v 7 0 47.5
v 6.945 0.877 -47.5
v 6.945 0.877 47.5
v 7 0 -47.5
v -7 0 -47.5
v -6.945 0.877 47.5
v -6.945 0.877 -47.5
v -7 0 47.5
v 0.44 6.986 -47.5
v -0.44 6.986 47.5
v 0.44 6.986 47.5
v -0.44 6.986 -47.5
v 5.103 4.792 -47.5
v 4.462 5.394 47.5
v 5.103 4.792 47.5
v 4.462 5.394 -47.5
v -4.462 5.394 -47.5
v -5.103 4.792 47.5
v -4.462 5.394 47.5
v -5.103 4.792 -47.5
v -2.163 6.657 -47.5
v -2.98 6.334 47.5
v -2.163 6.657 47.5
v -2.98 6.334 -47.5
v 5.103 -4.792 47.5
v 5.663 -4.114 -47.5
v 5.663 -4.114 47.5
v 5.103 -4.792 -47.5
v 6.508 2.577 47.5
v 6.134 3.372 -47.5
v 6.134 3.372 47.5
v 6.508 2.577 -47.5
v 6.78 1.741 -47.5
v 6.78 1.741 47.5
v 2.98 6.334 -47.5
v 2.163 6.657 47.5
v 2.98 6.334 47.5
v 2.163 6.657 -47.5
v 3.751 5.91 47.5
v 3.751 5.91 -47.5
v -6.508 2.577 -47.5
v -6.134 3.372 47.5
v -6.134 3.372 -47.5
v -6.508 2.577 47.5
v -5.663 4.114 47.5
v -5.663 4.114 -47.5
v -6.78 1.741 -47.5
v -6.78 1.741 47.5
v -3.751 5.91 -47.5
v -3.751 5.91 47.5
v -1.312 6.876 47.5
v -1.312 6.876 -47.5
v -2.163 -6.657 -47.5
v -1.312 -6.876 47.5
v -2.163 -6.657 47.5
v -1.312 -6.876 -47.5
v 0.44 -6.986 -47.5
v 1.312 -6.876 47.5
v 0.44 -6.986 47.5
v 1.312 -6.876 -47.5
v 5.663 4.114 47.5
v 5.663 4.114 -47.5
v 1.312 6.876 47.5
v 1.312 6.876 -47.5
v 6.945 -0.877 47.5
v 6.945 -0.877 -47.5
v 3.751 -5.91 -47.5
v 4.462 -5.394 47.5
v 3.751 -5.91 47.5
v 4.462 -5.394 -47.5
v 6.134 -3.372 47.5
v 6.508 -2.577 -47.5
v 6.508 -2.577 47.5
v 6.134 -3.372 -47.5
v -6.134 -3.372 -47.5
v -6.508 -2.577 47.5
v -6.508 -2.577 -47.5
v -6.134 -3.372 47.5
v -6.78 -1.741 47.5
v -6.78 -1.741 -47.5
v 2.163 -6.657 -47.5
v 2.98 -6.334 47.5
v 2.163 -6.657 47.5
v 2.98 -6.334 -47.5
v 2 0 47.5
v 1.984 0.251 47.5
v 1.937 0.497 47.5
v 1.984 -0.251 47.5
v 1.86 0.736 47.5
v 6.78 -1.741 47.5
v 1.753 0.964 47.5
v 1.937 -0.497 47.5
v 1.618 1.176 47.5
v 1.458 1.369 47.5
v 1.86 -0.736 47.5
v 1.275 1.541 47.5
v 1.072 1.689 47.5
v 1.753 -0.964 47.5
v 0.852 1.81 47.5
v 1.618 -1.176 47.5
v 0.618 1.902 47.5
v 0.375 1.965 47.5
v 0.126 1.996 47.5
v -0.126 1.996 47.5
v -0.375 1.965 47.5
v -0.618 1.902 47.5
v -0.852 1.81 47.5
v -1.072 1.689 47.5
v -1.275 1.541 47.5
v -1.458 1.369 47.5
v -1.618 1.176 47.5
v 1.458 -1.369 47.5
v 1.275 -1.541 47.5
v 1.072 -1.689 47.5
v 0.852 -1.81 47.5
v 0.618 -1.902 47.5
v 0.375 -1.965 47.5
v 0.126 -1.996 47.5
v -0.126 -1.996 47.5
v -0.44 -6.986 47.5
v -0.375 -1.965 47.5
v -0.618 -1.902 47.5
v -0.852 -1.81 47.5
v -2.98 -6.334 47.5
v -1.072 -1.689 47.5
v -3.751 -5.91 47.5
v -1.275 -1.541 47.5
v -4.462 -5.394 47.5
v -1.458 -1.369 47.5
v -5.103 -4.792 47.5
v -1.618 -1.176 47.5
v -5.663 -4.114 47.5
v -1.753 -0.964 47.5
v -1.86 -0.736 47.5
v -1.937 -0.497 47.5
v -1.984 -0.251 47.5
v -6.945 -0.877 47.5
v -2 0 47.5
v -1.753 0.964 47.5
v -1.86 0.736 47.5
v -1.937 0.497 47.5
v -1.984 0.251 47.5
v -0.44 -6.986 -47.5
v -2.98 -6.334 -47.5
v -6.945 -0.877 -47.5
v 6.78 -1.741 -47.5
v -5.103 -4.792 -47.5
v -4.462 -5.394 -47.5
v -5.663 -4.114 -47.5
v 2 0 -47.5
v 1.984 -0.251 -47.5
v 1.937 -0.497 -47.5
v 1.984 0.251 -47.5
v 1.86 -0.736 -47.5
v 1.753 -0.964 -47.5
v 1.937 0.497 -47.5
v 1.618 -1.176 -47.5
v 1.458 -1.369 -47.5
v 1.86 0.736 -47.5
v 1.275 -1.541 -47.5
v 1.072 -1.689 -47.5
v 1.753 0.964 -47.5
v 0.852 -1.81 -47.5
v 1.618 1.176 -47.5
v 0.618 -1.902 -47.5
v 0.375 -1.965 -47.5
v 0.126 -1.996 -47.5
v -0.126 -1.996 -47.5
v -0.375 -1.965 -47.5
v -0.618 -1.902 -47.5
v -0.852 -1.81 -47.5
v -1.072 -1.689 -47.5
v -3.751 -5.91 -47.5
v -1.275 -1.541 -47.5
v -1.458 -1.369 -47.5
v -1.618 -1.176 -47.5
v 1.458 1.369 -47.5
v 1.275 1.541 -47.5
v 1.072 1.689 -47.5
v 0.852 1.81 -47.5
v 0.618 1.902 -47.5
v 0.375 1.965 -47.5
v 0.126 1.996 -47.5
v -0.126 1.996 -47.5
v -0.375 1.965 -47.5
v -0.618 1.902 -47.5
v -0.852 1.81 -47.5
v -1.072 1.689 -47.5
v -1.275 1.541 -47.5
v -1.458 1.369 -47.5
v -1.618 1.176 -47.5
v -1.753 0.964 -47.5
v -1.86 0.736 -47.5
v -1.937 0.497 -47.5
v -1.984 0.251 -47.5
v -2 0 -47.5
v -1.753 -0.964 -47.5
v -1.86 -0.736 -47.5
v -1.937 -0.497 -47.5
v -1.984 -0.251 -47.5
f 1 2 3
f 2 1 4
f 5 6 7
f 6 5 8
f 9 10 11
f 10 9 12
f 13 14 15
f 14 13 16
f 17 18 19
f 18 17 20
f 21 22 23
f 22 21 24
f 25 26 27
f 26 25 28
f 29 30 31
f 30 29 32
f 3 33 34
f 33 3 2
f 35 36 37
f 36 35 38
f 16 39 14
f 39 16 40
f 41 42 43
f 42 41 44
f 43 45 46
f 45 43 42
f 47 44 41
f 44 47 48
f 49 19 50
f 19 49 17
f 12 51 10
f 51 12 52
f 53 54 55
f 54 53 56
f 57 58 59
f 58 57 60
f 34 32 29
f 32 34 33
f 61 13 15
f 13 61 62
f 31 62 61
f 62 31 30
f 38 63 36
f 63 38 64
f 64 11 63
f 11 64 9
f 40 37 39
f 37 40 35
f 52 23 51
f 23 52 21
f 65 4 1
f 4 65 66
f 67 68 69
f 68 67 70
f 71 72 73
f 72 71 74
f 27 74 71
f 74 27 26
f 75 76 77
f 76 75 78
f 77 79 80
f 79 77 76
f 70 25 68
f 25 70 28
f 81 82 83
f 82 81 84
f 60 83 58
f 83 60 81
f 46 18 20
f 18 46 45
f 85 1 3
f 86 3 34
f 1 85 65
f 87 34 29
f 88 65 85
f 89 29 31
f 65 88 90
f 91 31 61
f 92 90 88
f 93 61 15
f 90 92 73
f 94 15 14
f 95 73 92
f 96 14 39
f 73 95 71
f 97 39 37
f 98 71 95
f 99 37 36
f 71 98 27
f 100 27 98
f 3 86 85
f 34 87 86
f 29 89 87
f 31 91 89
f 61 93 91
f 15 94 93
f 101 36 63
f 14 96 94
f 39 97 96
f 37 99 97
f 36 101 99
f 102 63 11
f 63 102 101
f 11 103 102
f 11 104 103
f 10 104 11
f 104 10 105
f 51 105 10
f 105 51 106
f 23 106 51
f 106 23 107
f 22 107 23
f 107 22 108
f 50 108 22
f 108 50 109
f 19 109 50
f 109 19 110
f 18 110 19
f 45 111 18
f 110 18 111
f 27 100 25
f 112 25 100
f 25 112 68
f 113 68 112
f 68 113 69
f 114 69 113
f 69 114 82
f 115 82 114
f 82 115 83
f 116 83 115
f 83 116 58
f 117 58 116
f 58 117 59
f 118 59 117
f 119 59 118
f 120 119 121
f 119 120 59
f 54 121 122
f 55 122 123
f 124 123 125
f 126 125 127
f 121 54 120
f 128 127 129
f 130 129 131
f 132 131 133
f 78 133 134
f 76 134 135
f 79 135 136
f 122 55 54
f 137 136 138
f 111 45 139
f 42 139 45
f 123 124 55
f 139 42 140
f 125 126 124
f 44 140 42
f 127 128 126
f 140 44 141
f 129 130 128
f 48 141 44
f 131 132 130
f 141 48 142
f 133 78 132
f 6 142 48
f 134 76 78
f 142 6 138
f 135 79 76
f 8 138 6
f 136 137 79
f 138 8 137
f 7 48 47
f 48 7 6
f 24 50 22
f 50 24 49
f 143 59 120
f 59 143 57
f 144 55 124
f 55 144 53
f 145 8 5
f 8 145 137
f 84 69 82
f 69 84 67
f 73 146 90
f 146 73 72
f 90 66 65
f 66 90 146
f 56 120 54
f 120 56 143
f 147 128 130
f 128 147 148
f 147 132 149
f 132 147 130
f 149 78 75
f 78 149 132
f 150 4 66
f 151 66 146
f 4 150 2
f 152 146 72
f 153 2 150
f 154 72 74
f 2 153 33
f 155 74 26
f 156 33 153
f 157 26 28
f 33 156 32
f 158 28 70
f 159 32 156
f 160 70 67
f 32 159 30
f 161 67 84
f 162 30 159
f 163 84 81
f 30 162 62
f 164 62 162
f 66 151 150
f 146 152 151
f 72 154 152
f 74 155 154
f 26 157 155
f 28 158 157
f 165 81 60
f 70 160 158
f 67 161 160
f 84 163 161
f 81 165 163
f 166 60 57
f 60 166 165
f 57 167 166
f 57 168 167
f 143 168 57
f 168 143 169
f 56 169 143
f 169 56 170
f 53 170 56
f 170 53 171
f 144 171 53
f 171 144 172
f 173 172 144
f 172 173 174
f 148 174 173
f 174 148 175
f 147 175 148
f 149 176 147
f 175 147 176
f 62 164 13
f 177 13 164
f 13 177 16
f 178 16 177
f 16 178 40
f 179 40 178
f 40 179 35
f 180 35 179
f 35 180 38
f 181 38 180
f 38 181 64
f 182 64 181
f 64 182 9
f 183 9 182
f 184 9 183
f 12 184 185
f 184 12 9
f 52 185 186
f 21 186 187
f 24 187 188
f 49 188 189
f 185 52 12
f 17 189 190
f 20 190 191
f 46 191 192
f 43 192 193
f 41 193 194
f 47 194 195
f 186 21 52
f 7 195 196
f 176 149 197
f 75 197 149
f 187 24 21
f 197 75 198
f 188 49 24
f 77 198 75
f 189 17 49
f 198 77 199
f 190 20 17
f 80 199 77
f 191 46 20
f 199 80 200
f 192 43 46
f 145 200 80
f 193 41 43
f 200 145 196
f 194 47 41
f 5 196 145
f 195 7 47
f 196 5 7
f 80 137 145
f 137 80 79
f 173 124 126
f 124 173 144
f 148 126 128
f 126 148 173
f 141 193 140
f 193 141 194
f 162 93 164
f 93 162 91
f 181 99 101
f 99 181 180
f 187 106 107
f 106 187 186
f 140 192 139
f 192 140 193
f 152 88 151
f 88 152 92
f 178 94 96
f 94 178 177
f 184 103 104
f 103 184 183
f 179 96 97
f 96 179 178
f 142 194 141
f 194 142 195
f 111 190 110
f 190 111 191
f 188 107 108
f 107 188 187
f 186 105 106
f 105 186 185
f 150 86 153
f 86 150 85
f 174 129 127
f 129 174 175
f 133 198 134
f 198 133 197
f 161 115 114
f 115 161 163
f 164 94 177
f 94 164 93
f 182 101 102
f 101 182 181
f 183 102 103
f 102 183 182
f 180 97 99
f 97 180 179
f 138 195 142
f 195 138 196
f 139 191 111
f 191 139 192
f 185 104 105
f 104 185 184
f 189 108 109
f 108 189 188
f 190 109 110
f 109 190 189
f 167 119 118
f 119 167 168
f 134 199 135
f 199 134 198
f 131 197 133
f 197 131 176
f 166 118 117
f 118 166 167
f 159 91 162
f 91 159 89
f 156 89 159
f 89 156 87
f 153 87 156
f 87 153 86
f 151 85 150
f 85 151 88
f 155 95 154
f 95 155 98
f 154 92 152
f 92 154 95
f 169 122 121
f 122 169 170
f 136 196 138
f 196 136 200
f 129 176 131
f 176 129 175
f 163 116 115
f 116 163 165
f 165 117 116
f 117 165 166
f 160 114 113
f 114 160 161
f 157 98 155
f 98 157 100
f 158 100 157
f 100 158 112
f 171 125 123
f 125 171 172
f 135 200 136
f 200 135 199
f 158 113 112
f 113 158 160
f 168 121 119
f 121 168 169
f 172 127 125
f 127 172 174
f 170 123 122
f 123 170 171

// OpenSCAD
$fn = 50;


difference() {
	union() {
		translate(v = [0, 0, -47.5000000000]) {
			cylinder(h = 95, r = 7.0000000000);
		}
	}
	union() {
		translate(v = [0, 0, -100.0000000000]) {
			cylinder(h = 200, r = 2.0000000000);
		}
	}
}
